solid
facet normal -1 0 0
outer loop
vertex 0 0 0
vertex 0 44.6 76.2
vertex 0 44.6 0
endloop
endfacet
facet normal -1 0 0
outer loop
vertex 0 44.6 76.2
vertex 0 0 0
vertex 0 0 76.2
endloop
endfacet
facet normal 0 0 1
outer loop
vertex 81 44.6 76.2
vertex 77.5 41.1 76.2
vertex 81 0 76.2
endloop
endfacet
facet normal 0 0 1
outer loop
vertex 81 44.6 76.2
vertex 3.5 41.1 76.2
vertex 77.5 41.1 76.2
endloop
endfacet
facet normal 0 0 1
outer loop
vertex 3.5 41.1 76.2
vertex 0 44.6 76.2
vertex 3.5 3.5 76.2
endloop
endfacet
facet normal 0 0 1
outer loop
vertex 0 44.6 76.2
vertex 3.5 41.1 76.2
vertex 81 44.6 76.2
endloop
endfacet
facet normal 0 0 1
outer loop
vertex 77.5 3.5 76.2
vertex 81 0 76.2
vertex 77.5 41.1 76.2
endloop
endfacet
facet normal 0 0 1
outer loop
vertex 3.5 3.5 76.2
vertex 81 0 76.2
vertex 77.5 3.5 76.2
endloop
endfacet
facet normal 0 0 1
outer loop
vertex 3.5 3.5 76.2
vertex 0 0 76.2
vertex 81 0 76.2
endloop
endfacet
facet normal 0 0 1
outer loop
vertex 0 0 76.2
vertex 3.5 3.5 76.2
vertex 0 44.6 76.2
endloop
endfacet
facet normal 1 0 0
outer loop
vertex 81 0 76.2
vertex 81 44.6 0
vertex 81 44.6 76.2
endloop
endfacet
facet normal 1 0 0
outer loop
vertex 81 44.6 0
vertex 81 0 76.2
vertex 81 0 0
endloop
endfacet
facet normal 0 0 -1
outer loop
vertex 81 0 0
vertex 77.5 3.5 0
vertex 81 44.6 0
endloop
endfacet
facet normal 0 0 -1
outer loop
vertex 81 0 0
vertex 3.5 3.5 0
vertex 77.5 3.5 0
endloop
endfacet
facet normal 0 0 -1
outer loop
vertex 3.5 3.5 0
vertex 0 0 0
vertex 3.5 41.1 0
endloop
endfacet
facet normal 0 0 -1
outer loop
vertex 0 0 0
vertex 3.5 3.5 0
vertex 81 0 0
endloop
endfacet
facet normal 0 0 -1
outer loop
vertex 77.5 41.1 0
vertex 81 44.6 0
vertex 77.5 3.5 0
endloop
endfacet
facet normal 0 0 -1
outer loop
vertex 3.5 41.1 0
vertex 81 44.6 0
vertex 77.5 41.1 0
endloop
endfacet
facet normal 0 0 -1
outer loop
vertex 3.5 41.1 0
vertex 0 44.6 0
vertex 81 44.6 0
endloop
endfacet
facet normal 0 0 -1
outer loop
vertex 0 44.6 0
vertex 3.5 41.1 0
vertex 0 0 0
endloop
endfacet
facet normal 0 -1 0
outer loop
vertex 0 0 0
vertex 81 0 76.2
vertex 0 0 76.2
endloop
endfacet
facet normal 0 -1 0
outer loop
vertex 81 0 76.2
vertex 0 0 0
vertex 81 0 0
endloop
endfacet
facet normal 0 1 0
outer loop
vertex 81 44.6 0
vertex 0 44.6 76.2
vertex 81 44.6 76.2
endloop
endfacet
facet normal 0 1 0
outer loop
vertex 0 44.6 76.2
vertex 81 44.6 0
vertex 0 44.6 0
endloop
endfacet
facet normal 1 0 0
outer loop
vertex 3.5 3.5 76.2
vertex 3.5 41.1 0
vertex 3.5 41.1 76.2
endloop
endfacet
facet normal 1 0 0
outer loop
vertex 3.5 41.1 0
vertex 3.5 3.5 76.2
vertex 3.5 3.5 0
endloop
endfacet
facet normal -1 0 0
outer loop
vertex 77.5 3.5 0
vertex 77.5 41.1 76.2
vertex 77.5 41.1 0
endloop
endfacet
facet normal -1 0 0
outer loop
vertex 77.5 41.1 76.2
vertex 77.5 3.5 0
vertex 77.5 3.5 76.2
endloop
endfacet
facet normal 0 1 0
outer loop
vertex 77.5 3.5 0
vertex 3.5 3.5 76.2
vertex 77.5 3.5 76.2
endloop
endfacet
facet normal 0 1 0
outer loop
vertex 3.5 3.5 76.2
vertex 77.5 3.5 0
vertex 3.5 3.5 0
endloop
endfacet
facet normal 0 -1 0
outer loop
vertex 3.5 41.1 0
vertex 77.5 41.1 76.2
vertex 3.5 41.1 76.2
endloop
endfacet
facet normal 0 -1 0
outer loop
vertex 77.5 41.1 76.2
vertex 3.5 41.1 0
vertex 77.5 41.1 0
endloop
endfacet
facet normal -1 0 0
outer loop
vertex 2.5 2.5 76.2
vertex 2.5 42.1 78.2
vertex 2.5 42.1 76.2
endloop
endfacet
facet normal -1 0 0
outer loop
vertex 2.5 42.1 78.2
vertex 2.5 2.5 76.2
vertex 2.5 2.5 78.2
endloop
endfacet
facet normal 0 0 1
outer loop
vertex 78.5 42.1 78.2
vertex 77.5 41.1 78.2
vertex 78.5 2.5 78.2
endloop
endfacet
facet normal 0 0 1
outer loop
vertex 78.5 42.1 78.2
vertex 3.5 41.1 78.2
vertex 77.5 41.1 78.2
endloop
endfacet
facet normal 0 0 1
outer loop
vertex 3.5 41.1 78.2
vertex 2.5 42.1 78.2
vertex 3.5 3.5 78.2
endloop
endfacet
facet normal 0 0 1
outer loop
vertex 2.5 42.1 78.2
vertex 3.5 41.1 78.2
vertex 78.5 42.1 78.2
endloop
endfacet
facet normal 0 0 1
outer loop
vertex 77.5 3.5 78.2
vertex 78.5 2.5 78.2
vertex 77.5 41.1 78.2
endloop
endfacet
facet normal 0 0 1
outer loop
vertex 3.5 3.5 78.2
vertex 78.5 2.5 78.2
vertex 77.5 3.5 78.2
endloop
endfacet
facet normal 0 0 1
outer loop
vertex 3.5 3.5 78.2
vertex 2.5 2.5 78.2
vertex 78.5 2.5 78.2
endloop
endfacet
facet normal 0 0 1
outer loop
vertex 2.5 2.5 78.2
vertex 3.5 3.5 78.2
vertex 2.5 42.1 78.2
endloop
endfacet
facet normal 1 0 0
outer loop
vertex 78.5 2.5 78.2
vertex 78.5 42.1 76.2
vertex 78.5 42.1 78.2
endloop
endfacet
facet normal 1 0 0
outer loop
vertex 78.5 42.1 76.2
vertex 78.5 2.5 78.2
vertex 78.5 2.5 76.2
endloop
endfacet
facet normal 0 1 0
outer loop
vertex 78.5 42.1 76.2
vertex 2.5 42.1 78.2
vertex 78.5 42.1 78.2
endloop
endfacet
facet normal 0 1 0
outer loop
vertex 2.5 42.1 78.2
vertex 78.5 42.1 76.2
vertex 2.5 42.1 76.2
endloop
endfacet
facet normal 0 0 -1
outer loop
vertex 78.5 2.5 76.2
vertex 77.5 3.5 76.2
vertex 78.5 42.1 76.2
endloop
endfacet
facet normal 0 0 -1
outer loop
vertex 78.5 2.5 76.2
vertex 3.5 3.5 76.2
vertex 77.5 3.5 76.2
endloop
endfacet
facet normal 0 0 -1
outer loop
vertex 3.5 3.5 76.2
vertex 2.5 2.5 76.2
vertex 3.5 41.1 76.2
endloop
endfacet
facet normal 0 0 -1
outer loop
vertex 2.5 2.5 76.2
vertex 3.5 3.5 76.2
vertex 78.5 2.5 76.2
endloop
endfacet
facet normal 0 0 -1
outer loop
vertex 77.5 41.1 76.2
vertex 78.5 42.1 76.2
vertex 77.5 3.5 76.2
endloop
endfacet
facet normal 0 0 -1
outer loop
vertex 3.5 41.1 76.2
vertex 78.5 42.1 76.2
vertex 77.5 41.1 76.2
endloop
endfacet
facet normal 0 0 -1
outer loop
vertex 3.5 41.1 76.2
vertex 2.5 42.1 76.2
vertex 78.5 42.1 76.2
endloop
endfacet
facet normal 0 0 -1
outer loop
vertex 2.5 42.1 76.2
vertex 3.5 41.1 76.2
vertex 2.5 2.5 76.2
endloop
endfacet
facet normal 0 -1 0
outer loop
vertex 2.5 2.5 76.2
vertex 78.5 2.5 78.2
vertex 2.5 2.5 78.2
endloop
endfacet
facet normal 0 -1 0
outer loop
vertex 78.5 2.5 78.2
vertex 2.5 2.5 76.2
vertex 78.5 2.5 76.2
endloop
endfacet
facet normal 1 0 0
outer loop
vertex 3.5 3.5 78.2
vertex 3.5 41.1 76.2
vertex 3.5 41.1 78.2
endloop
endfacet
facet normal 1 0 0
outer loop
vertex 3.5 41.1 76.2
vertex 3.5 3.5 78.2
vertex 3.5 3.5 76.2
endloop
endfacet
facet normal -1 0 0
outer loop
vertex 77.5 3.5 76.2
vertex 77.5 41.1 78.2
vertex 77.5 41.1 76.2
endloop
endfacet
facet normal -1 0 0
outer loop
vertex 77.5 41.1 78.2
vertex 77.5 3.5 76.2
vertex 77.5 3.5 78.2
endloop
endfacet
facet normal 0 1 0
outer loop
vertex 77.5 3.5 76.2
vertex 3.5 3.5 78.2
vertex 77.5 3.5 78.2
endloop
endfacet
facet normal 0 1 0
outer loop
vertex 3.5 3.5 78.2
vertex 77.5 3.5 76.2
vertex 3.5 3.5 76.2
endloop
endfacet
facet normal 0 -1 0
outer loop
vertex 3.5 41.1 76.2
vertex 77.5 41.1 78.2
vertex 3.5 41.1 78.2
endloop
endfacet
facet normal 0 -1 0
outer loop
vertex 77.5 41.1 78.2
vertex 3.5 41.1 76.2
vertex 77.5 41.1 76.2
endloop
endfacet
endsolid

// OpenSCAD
// Customize the invocations (which follow
// the modules declarations) at the bottom of the file.

// To get these to print the fine features created
// by the "text" command, I set "Outer wall" to
// 0.22mm.

minh = 1;	// Minimum height
inch = 25.4;
$fn=50;

width = 81;
length = 44.6;
//height = 2;
height = 3*inch;
oww = 2.5; // ww we must fit inside
ww = oww + 1; // Our wall width

// Draw the main box.
difference() {
    cube([width, length, height]);
    translate([ww, ww, 0])
        cube([width-2*ww, length-2*ww, height]);
}

translate([oww, oww, height])
difference() {
    cube([width-2*oww, length-2*oww, 2]);
    translate([ww-oww, ww-oww, 0])
        cube([width-2*ww, length-2*ww, 2]);
}
